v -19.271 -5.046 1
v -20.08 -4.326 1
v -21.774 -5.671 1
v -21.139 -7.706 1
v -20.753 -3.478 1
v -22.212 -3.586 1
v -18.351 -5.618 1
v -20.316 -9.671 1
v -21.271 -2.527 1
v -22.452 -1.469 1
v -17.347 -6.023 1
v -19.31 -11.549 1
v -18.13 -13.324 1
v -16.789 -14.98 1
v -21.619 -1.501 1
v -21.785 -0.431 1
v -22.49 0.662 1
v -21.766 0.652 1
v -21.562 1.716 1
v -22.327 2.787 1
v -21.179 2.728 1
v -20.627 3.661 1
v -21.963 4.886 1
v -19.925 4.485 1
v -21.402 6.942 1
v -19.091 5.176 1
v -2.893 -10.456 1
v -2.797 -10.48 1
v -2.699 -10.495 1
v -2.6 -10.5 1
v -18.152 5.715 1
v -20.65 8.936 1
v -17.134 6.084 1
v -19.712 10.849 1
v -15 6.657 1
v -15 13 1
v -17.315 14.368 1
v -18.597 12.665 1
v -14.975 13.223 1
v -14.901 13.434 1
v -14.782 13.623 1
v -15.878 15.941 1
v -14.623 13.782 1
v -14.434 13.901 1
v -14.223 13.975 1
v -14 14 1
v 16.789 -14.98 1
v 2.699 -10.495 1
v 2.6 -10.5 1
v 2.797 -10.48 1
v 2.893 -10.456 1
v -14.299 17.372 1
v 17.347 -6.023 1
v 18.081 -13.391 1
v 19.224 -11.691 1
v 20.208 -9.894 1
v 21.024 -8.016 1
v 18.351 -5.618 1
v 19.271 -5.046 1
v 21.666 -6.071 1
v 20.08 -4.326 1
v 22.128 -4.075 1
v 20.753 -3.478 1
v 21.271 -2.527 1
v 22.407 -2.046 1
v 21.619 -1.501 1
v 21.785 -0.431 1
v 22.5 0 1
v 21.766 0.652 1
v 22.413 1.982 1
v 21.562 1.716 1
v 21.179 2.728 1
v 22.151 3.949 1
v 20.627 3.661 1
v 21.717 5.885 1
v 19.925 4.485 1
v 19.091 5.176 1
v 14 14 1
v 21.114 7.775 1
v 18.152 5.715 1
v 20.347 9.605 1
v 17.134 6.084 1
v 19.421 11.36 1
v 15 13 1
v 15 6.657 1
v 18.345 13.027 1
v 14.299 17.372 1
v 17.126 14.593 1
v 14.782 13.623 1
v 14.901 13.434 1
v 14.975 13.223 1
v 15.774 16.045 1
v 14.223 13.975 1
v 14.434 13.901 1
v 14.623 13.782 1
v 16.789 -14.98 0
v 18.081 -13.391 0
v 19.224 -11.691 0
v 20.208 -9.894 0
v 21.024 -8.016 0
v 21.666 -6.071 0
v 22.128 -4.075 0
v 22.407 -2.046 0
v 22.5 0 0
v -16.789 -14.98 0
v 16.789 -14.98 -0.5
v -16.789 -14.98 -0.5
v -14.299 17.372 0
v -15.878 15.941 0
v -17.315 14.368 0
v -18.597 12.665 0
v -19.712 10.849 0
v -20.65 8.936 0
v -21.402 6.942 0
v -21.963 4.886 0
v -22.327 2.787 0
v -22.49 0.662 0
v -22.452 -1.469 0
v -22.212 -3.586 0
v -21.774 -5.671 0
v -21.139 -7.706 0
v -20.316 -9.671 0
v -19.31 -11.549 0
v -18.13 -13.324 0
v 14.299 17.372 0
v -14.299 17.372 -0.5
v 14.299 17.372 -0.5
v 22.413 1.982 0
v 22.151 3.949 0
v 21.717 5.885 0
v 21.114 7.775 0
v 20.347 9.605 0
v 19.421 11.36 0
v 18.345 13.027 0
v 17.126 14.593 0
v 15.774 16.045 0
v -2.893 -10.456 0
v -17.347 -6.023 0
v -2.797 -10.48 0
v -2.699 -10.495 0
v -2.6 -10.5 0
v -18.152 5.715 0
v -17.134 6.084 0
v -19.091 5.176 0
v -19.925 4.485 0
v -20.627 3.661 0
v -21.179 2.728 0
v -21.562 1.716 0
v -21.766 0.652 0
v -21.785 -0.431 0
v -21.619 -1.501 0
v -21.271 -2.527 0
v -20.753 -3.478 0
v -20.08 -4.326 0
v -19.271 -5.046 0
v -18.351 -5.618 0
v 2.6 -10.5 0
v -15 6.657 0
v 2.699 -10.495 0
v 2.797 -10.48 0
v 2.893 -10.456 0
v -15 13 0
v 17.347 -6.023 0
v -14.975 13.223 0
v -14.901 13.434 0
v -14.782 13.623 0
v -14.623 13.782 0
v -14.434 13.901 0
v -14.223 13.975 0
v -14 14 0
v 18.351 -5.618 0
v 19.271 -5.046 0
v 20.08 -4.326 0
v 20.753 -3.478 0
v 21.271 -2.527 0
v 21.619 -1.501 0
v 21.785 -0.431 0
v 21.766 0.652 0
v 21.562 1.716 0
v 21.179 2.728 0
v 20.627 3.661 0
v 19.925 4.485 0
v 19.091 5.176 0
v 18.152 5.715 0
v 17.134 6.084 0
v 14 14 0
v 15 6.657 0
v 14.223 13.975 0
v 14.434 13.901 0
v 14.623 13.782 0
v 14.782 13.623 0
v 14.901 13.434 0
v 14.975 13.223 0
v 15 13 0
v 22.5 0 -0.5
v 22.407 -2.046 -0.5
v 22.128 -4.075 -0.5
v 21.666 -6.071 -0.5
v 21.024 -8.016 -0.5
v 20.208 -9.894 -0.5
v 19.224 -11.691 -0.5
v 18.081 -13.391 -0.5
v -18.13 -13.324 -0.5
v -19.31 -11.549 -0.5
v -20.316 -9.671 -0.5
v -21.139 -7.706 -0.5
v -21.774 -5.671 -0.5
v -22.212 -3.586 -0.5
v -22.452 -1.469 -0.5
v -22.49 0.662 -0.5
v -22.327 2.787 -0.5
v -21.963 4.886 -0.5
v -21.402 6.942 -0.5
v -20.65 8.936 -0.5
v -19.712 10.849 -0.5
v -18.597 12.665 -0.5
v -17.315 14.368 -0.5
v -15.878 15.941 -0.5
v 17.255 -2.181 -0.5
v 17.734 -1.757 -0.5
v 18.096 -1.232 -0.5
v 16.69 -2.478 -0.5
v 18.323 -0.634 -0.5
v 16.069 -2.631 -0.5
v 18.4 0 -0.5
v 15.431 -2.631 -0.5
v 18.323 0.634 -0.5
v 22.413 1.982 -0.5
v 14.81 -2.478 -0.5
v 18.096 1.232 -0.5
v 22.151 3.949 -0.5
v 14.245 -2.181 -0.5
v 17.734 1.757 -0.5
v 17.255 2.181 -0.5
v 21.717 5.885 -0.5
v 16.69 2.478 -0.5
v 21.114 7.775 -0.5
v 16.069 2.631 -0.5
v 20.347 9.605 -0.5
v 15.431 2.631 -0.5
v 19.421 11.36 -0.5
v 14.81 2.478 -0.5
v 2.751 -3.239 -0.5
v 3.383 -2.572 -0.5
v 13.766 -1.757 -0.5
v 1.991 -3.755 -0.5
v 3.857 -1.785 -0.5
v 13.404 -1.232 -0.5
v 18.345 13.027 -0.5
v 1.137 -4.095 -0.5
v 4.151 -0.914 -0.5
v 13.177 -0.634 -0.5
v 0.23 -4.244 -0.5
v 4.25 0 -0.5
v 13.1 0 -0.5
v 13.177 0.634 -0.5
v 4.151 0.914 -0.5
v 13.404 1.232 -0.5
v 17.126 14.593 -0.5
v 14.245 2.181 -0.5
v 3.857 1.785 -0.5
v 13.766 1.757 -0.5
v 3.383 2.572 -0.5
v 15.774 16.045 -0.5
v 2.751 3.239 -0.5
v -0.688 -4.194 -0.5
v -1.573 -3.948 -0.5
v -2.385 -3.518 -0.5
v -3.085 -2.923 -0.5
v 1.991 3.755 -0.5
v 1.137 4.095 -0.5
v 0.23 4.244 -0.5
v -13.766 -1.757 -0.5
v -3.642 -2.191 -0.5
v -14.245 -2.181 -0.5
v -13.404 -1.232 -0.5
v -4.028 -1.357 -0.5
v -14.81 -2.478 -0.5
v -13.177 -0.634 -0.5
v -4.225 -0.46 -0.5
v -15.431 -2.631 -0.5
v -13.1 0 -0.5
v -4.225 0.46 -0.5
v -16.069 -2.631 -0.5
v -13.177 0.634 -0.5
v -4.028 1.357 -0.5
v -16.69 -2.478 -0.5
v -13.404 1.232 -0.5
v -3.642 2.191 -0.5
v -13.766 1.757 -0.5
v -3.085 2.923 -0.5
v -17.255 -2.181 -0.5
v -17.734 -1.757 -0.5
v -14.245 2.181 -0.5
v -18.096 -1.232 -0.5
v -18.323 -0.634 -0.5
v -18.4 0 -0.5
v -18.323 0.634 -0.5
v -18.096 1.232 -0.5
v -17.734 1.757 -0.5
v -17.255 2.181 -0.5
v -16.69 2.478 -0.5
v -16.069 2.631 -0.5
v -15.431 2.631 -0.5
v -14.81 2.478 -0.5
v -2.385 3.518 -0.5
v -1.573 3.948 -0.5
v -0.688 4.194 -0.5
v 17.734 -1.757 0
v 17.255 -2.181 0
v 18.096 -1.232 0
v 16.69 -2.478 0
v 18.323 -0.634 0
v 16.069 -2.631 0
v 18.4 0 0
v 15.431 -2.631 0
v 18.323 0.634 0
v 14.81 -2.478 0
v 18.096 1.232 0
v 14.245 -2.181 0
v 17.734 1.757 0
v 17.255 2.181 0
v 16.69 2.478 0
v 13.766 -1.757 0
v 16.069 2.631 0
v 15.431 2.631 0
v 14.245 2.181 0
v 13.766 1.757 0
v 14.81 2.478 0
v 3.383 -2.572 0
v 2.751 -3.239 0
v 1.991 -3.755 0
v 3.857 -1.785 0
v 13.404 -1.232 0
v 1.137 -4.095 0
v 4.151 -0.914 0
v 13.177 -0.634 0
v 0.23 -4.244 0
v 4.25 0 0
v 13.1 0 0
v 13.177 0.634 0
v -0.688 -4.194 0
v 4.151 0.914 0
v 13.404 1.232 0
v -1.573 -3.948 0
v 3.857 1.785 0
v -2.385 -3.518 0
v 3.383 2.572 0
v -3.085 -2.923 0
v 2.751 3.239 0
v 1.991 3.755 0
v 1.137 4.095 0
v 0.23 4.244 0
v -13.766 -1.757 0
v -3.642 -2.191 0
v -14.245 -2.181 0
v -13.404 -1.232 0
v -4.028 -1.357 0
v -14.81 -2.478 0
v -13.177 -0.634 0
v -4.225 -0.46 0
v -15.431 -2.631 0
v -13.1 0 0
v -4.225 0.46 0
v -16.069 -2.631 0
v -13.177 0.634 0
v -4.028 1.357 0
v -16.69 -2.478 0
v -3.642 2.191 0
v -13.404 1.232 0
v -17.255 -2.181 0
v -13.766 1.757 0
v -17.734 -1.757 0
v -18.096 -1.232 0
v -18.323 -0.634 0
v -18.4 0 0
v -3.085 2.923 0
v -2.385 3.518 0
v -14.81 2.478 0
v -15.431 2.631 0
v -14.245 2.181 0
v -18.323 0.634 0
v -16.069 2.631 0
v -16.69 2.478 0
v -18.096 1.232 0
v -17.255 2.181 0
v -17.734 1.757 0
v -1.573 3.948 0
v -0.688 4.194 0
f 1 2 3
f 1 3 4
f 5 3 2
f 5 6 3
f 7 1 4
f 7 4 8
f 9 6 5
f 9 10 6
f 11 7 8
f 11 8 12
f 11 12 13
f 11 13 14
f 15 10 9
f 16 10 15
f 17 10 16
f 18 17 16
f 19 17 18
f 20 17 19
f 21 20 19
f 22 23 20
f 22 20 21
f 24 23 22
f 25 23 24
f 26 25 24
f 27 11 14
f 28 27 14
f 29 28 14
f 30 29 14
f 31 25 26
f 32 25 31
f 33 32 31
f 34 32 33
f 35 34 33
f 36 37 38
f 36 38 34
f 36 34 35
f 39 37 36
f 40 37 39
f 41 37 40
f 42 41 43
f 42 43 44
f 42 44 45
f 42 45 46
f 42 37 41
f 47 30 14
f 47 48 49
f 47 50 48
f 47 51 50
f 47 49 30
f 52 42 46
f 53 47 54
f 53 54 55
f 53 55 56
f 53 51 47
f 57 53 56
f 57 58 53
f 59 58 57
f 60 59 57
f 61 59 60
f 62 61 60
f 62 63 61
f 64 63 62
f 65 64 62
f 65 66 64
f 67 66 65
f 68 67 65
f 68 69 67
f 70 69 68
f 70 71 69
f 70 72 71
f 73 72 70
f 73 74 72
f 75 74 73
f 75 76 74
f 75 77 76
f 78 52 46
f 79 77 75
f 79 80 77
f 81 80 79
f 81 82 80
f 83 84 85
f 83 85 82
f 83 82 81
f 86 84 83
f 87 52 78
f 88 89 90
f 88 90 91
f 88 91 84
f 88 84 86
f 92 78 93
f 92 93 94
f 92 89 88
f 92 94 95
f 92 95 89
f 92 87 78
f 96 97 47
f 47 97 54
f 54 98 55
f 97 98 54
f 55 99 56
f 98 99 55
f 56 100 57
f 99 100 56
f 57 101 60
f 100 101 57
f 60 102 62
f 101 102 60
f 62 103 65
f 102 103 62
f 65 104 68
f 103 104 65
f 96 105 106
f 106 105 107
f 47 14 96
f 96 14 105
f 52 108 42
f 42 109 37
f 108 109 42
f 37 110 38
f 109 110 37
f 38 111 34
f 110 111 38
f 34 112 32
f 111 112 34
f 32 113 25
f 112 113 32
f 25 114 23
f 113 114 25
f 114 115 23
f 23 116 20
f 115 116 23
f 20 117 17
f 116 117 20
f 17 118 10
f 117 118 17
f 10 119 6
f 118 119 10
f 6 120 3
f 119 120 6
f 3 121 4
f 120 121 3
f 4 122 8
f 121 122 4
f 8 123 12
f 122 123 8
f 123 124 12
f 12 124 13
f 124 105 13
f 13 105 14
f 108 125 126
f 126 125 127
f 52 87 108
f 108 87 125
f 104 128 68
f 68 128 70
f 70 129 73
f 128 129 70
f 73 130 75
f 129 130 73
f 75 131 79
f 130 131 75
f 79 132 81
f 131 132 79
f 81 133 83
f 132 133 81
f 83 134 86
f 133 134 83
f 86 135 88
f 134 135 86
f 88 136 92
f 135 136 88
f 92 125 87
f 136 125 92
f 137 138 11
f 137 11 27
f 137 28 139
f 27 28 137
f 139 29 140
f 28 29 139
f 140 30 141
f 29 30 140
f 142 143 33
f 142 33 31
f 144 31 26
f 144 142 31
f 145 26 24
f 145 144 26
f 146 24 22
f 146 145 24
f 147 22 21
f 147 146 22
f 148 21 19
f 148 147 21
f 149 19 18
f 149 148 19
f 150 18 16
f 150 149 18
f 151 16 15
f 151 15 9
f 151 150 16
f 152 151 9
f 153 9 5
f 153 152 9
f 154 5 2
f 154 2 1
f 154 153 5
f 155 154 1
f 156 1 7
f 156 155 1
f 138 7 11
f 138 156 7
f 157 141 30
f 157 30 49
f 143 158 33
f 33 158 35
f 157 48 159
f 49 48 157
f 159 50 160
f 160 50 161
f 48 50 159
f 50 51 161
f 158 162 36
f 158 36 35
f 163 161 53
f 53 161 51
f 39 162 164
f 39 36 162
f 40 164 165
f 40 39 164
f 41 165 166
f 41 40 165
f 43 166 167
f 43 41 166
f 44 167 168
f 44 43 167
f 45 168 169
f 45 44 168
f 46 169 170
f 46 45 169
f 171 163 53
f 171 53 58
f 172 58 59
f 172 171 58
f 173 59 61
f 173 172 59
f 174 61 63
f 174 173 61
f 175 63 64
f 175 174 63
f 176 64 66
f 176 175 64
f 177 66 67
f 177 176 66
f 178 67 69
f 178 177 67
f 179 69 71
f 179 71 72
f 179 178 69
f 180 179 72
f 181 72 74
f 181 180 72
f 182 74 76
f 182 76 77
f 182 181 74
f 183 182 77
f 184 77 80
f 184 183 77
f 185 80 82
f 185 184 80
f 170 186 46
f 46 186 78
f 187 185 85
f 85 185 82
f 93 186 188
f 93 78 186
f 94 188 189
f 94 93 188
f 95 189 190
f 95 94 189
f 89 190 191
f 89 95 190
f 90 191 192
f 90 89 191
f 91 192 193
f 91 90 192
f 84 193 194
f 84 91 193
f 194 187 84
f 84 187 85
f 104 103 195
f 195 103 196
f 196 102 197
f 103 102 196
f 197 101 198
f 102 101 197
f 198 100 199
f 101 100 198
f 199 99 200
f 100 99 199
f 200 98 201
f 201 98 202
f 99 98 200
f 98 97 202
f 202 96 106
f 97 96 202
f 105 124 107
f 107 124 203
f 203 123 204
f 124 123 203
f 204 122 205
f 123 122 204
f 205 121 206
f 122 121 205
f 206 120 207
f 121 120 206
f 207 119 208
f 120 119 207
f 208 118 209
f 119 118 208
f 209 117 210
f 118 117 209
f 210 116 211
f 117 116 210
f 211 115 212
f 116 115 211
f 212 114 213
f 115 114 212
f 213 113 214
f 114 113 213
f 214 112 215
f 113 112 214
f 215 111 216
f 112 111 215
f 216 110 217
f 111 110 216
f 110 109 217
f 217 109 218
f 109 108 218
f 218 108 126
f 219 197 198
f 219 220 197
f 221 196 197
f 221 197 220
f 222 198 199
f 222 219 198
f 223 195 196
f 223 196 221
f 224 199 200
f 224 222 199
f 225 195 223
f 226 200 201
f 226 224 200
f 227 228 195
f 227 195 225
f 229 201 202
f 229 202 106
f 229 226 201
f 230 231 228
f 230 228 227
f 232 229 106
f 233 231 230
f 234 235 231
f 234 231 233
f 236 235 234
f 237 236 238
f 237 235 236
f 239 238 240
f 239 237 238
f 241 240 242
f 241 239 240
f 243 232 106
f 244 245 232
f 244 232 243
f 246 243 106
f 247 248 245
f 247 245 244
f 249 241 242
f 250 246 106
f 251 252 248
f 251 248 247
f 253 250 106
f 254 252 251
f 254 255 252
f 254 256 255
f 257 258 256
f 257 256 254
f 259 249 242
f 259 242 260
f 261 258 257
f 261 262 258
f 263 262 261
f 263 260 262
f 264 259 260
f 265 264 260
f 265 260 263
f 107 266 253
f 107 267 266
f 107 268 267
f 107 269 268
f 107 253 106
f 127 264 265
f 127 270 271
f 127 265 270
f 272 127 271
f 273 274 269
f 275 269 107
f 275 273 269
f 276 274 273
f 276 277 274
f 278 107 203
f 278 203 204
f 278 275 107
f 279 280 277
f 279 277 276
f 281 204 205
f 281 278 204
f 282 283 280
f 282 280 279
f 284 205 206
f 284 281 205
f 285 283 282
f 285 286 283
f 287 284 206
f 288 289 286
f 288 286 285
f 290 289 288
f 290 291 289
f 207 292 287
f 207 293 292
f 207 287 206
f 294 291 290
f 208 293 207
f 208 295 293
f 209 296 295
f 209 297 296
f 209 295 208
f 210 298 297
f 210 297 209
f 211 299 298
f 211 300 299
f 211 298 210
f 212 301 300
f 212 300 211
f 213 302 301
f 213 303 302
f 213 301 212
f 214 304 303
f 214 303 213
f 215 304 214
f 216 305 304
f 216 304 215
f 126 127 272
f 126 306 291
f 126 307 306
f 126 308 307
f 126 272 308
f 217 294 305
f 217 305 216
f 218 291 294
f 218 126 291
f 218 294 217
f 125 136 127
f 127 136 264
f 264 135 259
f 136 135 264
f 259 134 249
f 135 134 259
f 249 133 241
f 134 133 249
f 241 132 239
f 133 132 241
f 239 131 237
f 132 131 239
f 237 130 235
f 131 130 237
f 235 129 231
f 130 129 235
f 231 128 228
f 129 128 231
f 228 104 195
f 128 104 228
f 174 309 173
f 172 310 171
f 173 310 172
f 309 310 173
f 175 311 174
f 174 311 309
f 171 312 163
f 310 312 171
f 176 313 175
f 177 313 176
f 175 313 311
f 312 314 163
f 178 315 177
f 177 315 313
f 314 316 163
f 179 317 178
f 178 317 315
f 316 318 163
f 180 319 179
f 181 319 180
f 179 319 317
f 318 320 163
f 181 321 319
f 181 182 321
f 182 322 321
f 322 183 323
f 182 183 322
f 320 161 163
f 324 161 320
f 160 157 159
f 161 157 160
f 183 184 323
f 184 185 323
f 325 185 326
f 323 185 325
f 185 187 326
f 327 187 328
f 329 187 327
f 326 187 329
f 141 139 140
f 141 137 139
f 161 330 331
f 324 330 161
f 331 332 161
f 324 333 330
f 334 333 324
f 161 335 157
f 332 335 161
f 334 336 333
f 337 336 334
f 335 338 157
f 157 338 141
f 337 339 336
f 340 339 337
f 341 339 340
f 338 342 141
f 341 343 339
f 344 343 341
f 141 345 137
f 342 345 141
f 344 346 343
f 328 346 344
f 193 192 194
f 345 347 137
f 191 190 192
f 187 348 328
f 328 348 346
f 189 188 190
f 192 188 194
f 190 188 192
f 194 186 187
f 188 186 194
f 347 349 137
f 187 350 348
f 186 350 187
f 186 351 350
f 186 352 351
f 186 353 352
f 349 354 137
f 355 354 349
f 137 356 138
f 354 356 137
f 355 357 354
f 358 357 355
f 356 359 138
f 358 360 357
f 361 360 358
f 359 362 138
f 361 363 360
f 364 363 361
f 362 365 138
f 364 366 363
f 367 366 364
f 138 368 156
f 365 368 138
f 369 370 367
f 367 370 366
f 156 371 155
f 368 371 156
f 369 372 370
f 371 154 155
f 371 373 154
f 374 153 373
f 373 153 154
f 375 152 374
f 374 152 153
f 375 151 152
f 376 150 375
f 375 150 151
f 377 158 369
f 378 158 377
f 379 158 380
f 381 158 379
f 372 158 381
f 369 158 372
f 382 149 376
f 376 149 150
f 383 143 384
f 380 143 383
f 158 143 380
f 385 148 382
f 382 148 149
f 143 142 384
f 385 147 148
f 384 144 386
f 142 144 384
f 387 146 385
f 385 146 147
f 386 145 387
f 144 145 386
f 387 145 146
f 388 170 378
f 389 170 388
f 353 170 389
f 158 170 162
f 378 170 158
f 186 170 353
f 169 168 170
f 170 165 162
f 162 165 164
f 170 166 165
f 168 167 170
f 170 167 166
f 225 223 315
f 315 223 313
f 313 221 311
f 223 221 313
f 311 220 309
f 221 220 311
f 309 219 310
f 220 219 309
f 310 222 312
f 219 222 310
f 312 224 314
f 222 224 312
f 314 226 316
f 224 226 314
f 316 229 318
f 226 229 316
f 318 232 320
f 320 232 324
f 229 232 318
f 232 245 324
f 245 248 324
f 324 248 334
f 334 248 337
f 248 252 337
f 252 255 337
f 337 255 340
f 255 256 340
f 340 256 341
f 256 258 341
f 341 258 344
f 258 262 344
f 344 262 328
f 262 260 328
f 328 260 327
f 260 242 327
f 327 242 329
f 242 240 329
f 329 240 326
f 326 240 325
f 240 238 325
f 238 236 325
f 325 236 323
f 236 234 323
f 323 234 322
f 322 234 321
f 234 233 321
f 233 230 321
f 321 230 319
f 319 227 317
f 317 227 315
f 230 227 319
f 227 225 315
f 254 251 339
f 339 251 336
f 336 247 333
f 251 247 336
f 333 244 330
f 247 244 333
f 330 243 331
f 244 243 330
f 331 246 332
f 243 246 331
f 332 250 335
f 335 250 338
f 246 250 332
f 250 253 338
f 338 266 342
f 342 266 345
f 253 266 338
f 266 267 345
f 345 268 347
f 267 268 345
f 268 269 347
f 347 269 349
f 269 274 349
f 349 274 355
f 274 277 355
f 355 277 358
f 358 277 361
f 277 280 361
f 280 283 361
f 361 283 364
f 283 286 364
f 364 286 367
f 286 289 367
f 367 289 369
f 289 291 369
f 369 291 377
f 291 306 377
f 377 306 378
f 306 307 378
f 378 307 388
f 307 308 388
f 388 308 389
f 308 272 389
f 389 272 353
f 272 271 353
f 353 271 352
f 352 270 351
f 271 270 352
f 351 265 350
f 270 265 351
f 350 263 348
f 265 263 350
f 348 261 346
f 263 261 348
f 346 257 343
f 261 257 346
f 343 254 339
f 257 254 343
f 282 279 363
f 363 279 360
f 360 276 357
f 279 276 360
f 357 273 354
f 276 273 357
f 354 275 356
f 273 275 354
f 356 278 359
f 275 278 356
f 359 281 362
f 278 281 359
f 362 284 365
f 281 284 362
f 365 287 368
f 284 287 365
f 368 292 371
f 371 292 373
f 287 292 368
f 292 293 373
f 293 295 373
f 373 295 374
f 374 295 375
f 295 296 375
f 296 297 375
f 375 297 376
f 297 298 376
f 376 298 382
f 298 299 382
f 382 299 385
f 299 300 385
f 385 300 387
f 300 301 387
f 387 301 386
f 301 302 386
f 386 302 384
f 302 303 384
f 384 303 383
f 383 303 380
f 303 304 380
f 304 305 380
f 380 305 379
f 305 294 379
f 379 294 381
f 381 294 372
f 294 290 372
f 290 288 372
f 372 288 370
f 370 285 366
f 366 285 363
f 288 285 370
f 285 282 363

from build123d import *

# Parameters (mm, degrees)
SKETCH_R        = 22.5
PAD_DEPTH       = 1
SKETCH001_R     = 22.5
PAD001_DEPTH    = 0.5
SKETCH002_R     = 4.25
SKETCH002_R_2   = 2.65
POCKET_DEPTH    = 1.501
FILLET_R        = 1
FILLET001_R     = 1
POCKET001_DEPTH = 5


with BuildPart() as part:
    # Sketch → Pad (new body)
    with BuildSketch(Plane.XY):
        Circle(SKETCH_R)
        with BuildLine():
            ThreePointArc((17.347253, -6.023093), (21.799021, 0.111063), (17.133775, 6.08447))
            Line((15, 6.657422), (17.133775, 6.08447))
            Line((15, 14), (15, 6.657422))
            Line((-15, 14), (15, 14))
            Line((-15, 14), (-15, 6.657422))
            Line((-17.133775, 6.08447), (-15, 6.657422))
            ThreePointArc((-17.133775, 6.08447), (-21.799021, 0.111063), (-17.347253, -6.023093))
            Line((-17.347253, -6.023093), (-2.75, -10.5))
            Line((-2.75, -10.5), (2.75, -10.5))
            Line((17.347253, -6.023093), (2.75, -10.5))
        make_face(mode=Mode.SUBTRACT)
    extrude(amount=PAD_DEPTH)

    # Sketch001 (on Face12 of Pad) → Pad001 (join)
    with BuildSketch(Plane(origin=(0, 0, 0), x_dir=(1, 0, 0), z_dir=(0, 0, -1))):
        Circle(SKETCH001_R)
    extrude(amount=PAD001_DEPTH)

    # Sketch002 (on Face4 of Pad001) → Pocket (cut, through all)
    with BuildSketch(Plane(origin=(0, 0, -0.5), x_dir=(1, 0, 0), z_dir=(0, 0, -1))):
        Circle(SKETCH002_R)
        with Locations((-15.75, 0)):
            Circle(SKETCH002_R_2)
        with Locations((15.75, 0)):
            Circle(SKETCH002_R_2)
    extrude(amount=-POCKET_DEPTH, mode=Mode.SUBTRACT)

    # Fillet
    fillet_edges = [part.edges().sort_by_distance(p)[0] for p in [
        (15, 14, 0.5),
        (-15, 14, 0.5),
    ]]
    fillet(fillet_edges, radius=FILLET_R)

    # Fillet001
    fillet001_edges = [part.edges().sort_by_distance(p)[0] for p in [
        (-2.75, -10.5, 0.5),
        (2.75, -10.5, 0.5),
    ]]
    fillet(fillet001_edges, radius=FILLET001_R)

    # Sketch003 (on Face1 of Fillet001) → Pocket001 (cut)
    with BuildSketch(Plane.XY.offset(1)):
        with BuildLine():
            Line((-14.299143, 17.371946), (14.299143, 17.371946))
            ThreePointArc((14.299143, 17.371946), (0, 22.5), (-14.299143, 17.371946))
        make_face()
        with BuildLine():
            Line((16.788655, -14.979688), (-16.788655, -14.979688))
            ThreePointArc((-16.788655, -14.979688), (0, -22.5), (16.788655, -14.979688))
        make_face()
    extrude(amount=-POCKET001_DEPTH, mode=Mode.SUBTRACT)


solid = part.part
